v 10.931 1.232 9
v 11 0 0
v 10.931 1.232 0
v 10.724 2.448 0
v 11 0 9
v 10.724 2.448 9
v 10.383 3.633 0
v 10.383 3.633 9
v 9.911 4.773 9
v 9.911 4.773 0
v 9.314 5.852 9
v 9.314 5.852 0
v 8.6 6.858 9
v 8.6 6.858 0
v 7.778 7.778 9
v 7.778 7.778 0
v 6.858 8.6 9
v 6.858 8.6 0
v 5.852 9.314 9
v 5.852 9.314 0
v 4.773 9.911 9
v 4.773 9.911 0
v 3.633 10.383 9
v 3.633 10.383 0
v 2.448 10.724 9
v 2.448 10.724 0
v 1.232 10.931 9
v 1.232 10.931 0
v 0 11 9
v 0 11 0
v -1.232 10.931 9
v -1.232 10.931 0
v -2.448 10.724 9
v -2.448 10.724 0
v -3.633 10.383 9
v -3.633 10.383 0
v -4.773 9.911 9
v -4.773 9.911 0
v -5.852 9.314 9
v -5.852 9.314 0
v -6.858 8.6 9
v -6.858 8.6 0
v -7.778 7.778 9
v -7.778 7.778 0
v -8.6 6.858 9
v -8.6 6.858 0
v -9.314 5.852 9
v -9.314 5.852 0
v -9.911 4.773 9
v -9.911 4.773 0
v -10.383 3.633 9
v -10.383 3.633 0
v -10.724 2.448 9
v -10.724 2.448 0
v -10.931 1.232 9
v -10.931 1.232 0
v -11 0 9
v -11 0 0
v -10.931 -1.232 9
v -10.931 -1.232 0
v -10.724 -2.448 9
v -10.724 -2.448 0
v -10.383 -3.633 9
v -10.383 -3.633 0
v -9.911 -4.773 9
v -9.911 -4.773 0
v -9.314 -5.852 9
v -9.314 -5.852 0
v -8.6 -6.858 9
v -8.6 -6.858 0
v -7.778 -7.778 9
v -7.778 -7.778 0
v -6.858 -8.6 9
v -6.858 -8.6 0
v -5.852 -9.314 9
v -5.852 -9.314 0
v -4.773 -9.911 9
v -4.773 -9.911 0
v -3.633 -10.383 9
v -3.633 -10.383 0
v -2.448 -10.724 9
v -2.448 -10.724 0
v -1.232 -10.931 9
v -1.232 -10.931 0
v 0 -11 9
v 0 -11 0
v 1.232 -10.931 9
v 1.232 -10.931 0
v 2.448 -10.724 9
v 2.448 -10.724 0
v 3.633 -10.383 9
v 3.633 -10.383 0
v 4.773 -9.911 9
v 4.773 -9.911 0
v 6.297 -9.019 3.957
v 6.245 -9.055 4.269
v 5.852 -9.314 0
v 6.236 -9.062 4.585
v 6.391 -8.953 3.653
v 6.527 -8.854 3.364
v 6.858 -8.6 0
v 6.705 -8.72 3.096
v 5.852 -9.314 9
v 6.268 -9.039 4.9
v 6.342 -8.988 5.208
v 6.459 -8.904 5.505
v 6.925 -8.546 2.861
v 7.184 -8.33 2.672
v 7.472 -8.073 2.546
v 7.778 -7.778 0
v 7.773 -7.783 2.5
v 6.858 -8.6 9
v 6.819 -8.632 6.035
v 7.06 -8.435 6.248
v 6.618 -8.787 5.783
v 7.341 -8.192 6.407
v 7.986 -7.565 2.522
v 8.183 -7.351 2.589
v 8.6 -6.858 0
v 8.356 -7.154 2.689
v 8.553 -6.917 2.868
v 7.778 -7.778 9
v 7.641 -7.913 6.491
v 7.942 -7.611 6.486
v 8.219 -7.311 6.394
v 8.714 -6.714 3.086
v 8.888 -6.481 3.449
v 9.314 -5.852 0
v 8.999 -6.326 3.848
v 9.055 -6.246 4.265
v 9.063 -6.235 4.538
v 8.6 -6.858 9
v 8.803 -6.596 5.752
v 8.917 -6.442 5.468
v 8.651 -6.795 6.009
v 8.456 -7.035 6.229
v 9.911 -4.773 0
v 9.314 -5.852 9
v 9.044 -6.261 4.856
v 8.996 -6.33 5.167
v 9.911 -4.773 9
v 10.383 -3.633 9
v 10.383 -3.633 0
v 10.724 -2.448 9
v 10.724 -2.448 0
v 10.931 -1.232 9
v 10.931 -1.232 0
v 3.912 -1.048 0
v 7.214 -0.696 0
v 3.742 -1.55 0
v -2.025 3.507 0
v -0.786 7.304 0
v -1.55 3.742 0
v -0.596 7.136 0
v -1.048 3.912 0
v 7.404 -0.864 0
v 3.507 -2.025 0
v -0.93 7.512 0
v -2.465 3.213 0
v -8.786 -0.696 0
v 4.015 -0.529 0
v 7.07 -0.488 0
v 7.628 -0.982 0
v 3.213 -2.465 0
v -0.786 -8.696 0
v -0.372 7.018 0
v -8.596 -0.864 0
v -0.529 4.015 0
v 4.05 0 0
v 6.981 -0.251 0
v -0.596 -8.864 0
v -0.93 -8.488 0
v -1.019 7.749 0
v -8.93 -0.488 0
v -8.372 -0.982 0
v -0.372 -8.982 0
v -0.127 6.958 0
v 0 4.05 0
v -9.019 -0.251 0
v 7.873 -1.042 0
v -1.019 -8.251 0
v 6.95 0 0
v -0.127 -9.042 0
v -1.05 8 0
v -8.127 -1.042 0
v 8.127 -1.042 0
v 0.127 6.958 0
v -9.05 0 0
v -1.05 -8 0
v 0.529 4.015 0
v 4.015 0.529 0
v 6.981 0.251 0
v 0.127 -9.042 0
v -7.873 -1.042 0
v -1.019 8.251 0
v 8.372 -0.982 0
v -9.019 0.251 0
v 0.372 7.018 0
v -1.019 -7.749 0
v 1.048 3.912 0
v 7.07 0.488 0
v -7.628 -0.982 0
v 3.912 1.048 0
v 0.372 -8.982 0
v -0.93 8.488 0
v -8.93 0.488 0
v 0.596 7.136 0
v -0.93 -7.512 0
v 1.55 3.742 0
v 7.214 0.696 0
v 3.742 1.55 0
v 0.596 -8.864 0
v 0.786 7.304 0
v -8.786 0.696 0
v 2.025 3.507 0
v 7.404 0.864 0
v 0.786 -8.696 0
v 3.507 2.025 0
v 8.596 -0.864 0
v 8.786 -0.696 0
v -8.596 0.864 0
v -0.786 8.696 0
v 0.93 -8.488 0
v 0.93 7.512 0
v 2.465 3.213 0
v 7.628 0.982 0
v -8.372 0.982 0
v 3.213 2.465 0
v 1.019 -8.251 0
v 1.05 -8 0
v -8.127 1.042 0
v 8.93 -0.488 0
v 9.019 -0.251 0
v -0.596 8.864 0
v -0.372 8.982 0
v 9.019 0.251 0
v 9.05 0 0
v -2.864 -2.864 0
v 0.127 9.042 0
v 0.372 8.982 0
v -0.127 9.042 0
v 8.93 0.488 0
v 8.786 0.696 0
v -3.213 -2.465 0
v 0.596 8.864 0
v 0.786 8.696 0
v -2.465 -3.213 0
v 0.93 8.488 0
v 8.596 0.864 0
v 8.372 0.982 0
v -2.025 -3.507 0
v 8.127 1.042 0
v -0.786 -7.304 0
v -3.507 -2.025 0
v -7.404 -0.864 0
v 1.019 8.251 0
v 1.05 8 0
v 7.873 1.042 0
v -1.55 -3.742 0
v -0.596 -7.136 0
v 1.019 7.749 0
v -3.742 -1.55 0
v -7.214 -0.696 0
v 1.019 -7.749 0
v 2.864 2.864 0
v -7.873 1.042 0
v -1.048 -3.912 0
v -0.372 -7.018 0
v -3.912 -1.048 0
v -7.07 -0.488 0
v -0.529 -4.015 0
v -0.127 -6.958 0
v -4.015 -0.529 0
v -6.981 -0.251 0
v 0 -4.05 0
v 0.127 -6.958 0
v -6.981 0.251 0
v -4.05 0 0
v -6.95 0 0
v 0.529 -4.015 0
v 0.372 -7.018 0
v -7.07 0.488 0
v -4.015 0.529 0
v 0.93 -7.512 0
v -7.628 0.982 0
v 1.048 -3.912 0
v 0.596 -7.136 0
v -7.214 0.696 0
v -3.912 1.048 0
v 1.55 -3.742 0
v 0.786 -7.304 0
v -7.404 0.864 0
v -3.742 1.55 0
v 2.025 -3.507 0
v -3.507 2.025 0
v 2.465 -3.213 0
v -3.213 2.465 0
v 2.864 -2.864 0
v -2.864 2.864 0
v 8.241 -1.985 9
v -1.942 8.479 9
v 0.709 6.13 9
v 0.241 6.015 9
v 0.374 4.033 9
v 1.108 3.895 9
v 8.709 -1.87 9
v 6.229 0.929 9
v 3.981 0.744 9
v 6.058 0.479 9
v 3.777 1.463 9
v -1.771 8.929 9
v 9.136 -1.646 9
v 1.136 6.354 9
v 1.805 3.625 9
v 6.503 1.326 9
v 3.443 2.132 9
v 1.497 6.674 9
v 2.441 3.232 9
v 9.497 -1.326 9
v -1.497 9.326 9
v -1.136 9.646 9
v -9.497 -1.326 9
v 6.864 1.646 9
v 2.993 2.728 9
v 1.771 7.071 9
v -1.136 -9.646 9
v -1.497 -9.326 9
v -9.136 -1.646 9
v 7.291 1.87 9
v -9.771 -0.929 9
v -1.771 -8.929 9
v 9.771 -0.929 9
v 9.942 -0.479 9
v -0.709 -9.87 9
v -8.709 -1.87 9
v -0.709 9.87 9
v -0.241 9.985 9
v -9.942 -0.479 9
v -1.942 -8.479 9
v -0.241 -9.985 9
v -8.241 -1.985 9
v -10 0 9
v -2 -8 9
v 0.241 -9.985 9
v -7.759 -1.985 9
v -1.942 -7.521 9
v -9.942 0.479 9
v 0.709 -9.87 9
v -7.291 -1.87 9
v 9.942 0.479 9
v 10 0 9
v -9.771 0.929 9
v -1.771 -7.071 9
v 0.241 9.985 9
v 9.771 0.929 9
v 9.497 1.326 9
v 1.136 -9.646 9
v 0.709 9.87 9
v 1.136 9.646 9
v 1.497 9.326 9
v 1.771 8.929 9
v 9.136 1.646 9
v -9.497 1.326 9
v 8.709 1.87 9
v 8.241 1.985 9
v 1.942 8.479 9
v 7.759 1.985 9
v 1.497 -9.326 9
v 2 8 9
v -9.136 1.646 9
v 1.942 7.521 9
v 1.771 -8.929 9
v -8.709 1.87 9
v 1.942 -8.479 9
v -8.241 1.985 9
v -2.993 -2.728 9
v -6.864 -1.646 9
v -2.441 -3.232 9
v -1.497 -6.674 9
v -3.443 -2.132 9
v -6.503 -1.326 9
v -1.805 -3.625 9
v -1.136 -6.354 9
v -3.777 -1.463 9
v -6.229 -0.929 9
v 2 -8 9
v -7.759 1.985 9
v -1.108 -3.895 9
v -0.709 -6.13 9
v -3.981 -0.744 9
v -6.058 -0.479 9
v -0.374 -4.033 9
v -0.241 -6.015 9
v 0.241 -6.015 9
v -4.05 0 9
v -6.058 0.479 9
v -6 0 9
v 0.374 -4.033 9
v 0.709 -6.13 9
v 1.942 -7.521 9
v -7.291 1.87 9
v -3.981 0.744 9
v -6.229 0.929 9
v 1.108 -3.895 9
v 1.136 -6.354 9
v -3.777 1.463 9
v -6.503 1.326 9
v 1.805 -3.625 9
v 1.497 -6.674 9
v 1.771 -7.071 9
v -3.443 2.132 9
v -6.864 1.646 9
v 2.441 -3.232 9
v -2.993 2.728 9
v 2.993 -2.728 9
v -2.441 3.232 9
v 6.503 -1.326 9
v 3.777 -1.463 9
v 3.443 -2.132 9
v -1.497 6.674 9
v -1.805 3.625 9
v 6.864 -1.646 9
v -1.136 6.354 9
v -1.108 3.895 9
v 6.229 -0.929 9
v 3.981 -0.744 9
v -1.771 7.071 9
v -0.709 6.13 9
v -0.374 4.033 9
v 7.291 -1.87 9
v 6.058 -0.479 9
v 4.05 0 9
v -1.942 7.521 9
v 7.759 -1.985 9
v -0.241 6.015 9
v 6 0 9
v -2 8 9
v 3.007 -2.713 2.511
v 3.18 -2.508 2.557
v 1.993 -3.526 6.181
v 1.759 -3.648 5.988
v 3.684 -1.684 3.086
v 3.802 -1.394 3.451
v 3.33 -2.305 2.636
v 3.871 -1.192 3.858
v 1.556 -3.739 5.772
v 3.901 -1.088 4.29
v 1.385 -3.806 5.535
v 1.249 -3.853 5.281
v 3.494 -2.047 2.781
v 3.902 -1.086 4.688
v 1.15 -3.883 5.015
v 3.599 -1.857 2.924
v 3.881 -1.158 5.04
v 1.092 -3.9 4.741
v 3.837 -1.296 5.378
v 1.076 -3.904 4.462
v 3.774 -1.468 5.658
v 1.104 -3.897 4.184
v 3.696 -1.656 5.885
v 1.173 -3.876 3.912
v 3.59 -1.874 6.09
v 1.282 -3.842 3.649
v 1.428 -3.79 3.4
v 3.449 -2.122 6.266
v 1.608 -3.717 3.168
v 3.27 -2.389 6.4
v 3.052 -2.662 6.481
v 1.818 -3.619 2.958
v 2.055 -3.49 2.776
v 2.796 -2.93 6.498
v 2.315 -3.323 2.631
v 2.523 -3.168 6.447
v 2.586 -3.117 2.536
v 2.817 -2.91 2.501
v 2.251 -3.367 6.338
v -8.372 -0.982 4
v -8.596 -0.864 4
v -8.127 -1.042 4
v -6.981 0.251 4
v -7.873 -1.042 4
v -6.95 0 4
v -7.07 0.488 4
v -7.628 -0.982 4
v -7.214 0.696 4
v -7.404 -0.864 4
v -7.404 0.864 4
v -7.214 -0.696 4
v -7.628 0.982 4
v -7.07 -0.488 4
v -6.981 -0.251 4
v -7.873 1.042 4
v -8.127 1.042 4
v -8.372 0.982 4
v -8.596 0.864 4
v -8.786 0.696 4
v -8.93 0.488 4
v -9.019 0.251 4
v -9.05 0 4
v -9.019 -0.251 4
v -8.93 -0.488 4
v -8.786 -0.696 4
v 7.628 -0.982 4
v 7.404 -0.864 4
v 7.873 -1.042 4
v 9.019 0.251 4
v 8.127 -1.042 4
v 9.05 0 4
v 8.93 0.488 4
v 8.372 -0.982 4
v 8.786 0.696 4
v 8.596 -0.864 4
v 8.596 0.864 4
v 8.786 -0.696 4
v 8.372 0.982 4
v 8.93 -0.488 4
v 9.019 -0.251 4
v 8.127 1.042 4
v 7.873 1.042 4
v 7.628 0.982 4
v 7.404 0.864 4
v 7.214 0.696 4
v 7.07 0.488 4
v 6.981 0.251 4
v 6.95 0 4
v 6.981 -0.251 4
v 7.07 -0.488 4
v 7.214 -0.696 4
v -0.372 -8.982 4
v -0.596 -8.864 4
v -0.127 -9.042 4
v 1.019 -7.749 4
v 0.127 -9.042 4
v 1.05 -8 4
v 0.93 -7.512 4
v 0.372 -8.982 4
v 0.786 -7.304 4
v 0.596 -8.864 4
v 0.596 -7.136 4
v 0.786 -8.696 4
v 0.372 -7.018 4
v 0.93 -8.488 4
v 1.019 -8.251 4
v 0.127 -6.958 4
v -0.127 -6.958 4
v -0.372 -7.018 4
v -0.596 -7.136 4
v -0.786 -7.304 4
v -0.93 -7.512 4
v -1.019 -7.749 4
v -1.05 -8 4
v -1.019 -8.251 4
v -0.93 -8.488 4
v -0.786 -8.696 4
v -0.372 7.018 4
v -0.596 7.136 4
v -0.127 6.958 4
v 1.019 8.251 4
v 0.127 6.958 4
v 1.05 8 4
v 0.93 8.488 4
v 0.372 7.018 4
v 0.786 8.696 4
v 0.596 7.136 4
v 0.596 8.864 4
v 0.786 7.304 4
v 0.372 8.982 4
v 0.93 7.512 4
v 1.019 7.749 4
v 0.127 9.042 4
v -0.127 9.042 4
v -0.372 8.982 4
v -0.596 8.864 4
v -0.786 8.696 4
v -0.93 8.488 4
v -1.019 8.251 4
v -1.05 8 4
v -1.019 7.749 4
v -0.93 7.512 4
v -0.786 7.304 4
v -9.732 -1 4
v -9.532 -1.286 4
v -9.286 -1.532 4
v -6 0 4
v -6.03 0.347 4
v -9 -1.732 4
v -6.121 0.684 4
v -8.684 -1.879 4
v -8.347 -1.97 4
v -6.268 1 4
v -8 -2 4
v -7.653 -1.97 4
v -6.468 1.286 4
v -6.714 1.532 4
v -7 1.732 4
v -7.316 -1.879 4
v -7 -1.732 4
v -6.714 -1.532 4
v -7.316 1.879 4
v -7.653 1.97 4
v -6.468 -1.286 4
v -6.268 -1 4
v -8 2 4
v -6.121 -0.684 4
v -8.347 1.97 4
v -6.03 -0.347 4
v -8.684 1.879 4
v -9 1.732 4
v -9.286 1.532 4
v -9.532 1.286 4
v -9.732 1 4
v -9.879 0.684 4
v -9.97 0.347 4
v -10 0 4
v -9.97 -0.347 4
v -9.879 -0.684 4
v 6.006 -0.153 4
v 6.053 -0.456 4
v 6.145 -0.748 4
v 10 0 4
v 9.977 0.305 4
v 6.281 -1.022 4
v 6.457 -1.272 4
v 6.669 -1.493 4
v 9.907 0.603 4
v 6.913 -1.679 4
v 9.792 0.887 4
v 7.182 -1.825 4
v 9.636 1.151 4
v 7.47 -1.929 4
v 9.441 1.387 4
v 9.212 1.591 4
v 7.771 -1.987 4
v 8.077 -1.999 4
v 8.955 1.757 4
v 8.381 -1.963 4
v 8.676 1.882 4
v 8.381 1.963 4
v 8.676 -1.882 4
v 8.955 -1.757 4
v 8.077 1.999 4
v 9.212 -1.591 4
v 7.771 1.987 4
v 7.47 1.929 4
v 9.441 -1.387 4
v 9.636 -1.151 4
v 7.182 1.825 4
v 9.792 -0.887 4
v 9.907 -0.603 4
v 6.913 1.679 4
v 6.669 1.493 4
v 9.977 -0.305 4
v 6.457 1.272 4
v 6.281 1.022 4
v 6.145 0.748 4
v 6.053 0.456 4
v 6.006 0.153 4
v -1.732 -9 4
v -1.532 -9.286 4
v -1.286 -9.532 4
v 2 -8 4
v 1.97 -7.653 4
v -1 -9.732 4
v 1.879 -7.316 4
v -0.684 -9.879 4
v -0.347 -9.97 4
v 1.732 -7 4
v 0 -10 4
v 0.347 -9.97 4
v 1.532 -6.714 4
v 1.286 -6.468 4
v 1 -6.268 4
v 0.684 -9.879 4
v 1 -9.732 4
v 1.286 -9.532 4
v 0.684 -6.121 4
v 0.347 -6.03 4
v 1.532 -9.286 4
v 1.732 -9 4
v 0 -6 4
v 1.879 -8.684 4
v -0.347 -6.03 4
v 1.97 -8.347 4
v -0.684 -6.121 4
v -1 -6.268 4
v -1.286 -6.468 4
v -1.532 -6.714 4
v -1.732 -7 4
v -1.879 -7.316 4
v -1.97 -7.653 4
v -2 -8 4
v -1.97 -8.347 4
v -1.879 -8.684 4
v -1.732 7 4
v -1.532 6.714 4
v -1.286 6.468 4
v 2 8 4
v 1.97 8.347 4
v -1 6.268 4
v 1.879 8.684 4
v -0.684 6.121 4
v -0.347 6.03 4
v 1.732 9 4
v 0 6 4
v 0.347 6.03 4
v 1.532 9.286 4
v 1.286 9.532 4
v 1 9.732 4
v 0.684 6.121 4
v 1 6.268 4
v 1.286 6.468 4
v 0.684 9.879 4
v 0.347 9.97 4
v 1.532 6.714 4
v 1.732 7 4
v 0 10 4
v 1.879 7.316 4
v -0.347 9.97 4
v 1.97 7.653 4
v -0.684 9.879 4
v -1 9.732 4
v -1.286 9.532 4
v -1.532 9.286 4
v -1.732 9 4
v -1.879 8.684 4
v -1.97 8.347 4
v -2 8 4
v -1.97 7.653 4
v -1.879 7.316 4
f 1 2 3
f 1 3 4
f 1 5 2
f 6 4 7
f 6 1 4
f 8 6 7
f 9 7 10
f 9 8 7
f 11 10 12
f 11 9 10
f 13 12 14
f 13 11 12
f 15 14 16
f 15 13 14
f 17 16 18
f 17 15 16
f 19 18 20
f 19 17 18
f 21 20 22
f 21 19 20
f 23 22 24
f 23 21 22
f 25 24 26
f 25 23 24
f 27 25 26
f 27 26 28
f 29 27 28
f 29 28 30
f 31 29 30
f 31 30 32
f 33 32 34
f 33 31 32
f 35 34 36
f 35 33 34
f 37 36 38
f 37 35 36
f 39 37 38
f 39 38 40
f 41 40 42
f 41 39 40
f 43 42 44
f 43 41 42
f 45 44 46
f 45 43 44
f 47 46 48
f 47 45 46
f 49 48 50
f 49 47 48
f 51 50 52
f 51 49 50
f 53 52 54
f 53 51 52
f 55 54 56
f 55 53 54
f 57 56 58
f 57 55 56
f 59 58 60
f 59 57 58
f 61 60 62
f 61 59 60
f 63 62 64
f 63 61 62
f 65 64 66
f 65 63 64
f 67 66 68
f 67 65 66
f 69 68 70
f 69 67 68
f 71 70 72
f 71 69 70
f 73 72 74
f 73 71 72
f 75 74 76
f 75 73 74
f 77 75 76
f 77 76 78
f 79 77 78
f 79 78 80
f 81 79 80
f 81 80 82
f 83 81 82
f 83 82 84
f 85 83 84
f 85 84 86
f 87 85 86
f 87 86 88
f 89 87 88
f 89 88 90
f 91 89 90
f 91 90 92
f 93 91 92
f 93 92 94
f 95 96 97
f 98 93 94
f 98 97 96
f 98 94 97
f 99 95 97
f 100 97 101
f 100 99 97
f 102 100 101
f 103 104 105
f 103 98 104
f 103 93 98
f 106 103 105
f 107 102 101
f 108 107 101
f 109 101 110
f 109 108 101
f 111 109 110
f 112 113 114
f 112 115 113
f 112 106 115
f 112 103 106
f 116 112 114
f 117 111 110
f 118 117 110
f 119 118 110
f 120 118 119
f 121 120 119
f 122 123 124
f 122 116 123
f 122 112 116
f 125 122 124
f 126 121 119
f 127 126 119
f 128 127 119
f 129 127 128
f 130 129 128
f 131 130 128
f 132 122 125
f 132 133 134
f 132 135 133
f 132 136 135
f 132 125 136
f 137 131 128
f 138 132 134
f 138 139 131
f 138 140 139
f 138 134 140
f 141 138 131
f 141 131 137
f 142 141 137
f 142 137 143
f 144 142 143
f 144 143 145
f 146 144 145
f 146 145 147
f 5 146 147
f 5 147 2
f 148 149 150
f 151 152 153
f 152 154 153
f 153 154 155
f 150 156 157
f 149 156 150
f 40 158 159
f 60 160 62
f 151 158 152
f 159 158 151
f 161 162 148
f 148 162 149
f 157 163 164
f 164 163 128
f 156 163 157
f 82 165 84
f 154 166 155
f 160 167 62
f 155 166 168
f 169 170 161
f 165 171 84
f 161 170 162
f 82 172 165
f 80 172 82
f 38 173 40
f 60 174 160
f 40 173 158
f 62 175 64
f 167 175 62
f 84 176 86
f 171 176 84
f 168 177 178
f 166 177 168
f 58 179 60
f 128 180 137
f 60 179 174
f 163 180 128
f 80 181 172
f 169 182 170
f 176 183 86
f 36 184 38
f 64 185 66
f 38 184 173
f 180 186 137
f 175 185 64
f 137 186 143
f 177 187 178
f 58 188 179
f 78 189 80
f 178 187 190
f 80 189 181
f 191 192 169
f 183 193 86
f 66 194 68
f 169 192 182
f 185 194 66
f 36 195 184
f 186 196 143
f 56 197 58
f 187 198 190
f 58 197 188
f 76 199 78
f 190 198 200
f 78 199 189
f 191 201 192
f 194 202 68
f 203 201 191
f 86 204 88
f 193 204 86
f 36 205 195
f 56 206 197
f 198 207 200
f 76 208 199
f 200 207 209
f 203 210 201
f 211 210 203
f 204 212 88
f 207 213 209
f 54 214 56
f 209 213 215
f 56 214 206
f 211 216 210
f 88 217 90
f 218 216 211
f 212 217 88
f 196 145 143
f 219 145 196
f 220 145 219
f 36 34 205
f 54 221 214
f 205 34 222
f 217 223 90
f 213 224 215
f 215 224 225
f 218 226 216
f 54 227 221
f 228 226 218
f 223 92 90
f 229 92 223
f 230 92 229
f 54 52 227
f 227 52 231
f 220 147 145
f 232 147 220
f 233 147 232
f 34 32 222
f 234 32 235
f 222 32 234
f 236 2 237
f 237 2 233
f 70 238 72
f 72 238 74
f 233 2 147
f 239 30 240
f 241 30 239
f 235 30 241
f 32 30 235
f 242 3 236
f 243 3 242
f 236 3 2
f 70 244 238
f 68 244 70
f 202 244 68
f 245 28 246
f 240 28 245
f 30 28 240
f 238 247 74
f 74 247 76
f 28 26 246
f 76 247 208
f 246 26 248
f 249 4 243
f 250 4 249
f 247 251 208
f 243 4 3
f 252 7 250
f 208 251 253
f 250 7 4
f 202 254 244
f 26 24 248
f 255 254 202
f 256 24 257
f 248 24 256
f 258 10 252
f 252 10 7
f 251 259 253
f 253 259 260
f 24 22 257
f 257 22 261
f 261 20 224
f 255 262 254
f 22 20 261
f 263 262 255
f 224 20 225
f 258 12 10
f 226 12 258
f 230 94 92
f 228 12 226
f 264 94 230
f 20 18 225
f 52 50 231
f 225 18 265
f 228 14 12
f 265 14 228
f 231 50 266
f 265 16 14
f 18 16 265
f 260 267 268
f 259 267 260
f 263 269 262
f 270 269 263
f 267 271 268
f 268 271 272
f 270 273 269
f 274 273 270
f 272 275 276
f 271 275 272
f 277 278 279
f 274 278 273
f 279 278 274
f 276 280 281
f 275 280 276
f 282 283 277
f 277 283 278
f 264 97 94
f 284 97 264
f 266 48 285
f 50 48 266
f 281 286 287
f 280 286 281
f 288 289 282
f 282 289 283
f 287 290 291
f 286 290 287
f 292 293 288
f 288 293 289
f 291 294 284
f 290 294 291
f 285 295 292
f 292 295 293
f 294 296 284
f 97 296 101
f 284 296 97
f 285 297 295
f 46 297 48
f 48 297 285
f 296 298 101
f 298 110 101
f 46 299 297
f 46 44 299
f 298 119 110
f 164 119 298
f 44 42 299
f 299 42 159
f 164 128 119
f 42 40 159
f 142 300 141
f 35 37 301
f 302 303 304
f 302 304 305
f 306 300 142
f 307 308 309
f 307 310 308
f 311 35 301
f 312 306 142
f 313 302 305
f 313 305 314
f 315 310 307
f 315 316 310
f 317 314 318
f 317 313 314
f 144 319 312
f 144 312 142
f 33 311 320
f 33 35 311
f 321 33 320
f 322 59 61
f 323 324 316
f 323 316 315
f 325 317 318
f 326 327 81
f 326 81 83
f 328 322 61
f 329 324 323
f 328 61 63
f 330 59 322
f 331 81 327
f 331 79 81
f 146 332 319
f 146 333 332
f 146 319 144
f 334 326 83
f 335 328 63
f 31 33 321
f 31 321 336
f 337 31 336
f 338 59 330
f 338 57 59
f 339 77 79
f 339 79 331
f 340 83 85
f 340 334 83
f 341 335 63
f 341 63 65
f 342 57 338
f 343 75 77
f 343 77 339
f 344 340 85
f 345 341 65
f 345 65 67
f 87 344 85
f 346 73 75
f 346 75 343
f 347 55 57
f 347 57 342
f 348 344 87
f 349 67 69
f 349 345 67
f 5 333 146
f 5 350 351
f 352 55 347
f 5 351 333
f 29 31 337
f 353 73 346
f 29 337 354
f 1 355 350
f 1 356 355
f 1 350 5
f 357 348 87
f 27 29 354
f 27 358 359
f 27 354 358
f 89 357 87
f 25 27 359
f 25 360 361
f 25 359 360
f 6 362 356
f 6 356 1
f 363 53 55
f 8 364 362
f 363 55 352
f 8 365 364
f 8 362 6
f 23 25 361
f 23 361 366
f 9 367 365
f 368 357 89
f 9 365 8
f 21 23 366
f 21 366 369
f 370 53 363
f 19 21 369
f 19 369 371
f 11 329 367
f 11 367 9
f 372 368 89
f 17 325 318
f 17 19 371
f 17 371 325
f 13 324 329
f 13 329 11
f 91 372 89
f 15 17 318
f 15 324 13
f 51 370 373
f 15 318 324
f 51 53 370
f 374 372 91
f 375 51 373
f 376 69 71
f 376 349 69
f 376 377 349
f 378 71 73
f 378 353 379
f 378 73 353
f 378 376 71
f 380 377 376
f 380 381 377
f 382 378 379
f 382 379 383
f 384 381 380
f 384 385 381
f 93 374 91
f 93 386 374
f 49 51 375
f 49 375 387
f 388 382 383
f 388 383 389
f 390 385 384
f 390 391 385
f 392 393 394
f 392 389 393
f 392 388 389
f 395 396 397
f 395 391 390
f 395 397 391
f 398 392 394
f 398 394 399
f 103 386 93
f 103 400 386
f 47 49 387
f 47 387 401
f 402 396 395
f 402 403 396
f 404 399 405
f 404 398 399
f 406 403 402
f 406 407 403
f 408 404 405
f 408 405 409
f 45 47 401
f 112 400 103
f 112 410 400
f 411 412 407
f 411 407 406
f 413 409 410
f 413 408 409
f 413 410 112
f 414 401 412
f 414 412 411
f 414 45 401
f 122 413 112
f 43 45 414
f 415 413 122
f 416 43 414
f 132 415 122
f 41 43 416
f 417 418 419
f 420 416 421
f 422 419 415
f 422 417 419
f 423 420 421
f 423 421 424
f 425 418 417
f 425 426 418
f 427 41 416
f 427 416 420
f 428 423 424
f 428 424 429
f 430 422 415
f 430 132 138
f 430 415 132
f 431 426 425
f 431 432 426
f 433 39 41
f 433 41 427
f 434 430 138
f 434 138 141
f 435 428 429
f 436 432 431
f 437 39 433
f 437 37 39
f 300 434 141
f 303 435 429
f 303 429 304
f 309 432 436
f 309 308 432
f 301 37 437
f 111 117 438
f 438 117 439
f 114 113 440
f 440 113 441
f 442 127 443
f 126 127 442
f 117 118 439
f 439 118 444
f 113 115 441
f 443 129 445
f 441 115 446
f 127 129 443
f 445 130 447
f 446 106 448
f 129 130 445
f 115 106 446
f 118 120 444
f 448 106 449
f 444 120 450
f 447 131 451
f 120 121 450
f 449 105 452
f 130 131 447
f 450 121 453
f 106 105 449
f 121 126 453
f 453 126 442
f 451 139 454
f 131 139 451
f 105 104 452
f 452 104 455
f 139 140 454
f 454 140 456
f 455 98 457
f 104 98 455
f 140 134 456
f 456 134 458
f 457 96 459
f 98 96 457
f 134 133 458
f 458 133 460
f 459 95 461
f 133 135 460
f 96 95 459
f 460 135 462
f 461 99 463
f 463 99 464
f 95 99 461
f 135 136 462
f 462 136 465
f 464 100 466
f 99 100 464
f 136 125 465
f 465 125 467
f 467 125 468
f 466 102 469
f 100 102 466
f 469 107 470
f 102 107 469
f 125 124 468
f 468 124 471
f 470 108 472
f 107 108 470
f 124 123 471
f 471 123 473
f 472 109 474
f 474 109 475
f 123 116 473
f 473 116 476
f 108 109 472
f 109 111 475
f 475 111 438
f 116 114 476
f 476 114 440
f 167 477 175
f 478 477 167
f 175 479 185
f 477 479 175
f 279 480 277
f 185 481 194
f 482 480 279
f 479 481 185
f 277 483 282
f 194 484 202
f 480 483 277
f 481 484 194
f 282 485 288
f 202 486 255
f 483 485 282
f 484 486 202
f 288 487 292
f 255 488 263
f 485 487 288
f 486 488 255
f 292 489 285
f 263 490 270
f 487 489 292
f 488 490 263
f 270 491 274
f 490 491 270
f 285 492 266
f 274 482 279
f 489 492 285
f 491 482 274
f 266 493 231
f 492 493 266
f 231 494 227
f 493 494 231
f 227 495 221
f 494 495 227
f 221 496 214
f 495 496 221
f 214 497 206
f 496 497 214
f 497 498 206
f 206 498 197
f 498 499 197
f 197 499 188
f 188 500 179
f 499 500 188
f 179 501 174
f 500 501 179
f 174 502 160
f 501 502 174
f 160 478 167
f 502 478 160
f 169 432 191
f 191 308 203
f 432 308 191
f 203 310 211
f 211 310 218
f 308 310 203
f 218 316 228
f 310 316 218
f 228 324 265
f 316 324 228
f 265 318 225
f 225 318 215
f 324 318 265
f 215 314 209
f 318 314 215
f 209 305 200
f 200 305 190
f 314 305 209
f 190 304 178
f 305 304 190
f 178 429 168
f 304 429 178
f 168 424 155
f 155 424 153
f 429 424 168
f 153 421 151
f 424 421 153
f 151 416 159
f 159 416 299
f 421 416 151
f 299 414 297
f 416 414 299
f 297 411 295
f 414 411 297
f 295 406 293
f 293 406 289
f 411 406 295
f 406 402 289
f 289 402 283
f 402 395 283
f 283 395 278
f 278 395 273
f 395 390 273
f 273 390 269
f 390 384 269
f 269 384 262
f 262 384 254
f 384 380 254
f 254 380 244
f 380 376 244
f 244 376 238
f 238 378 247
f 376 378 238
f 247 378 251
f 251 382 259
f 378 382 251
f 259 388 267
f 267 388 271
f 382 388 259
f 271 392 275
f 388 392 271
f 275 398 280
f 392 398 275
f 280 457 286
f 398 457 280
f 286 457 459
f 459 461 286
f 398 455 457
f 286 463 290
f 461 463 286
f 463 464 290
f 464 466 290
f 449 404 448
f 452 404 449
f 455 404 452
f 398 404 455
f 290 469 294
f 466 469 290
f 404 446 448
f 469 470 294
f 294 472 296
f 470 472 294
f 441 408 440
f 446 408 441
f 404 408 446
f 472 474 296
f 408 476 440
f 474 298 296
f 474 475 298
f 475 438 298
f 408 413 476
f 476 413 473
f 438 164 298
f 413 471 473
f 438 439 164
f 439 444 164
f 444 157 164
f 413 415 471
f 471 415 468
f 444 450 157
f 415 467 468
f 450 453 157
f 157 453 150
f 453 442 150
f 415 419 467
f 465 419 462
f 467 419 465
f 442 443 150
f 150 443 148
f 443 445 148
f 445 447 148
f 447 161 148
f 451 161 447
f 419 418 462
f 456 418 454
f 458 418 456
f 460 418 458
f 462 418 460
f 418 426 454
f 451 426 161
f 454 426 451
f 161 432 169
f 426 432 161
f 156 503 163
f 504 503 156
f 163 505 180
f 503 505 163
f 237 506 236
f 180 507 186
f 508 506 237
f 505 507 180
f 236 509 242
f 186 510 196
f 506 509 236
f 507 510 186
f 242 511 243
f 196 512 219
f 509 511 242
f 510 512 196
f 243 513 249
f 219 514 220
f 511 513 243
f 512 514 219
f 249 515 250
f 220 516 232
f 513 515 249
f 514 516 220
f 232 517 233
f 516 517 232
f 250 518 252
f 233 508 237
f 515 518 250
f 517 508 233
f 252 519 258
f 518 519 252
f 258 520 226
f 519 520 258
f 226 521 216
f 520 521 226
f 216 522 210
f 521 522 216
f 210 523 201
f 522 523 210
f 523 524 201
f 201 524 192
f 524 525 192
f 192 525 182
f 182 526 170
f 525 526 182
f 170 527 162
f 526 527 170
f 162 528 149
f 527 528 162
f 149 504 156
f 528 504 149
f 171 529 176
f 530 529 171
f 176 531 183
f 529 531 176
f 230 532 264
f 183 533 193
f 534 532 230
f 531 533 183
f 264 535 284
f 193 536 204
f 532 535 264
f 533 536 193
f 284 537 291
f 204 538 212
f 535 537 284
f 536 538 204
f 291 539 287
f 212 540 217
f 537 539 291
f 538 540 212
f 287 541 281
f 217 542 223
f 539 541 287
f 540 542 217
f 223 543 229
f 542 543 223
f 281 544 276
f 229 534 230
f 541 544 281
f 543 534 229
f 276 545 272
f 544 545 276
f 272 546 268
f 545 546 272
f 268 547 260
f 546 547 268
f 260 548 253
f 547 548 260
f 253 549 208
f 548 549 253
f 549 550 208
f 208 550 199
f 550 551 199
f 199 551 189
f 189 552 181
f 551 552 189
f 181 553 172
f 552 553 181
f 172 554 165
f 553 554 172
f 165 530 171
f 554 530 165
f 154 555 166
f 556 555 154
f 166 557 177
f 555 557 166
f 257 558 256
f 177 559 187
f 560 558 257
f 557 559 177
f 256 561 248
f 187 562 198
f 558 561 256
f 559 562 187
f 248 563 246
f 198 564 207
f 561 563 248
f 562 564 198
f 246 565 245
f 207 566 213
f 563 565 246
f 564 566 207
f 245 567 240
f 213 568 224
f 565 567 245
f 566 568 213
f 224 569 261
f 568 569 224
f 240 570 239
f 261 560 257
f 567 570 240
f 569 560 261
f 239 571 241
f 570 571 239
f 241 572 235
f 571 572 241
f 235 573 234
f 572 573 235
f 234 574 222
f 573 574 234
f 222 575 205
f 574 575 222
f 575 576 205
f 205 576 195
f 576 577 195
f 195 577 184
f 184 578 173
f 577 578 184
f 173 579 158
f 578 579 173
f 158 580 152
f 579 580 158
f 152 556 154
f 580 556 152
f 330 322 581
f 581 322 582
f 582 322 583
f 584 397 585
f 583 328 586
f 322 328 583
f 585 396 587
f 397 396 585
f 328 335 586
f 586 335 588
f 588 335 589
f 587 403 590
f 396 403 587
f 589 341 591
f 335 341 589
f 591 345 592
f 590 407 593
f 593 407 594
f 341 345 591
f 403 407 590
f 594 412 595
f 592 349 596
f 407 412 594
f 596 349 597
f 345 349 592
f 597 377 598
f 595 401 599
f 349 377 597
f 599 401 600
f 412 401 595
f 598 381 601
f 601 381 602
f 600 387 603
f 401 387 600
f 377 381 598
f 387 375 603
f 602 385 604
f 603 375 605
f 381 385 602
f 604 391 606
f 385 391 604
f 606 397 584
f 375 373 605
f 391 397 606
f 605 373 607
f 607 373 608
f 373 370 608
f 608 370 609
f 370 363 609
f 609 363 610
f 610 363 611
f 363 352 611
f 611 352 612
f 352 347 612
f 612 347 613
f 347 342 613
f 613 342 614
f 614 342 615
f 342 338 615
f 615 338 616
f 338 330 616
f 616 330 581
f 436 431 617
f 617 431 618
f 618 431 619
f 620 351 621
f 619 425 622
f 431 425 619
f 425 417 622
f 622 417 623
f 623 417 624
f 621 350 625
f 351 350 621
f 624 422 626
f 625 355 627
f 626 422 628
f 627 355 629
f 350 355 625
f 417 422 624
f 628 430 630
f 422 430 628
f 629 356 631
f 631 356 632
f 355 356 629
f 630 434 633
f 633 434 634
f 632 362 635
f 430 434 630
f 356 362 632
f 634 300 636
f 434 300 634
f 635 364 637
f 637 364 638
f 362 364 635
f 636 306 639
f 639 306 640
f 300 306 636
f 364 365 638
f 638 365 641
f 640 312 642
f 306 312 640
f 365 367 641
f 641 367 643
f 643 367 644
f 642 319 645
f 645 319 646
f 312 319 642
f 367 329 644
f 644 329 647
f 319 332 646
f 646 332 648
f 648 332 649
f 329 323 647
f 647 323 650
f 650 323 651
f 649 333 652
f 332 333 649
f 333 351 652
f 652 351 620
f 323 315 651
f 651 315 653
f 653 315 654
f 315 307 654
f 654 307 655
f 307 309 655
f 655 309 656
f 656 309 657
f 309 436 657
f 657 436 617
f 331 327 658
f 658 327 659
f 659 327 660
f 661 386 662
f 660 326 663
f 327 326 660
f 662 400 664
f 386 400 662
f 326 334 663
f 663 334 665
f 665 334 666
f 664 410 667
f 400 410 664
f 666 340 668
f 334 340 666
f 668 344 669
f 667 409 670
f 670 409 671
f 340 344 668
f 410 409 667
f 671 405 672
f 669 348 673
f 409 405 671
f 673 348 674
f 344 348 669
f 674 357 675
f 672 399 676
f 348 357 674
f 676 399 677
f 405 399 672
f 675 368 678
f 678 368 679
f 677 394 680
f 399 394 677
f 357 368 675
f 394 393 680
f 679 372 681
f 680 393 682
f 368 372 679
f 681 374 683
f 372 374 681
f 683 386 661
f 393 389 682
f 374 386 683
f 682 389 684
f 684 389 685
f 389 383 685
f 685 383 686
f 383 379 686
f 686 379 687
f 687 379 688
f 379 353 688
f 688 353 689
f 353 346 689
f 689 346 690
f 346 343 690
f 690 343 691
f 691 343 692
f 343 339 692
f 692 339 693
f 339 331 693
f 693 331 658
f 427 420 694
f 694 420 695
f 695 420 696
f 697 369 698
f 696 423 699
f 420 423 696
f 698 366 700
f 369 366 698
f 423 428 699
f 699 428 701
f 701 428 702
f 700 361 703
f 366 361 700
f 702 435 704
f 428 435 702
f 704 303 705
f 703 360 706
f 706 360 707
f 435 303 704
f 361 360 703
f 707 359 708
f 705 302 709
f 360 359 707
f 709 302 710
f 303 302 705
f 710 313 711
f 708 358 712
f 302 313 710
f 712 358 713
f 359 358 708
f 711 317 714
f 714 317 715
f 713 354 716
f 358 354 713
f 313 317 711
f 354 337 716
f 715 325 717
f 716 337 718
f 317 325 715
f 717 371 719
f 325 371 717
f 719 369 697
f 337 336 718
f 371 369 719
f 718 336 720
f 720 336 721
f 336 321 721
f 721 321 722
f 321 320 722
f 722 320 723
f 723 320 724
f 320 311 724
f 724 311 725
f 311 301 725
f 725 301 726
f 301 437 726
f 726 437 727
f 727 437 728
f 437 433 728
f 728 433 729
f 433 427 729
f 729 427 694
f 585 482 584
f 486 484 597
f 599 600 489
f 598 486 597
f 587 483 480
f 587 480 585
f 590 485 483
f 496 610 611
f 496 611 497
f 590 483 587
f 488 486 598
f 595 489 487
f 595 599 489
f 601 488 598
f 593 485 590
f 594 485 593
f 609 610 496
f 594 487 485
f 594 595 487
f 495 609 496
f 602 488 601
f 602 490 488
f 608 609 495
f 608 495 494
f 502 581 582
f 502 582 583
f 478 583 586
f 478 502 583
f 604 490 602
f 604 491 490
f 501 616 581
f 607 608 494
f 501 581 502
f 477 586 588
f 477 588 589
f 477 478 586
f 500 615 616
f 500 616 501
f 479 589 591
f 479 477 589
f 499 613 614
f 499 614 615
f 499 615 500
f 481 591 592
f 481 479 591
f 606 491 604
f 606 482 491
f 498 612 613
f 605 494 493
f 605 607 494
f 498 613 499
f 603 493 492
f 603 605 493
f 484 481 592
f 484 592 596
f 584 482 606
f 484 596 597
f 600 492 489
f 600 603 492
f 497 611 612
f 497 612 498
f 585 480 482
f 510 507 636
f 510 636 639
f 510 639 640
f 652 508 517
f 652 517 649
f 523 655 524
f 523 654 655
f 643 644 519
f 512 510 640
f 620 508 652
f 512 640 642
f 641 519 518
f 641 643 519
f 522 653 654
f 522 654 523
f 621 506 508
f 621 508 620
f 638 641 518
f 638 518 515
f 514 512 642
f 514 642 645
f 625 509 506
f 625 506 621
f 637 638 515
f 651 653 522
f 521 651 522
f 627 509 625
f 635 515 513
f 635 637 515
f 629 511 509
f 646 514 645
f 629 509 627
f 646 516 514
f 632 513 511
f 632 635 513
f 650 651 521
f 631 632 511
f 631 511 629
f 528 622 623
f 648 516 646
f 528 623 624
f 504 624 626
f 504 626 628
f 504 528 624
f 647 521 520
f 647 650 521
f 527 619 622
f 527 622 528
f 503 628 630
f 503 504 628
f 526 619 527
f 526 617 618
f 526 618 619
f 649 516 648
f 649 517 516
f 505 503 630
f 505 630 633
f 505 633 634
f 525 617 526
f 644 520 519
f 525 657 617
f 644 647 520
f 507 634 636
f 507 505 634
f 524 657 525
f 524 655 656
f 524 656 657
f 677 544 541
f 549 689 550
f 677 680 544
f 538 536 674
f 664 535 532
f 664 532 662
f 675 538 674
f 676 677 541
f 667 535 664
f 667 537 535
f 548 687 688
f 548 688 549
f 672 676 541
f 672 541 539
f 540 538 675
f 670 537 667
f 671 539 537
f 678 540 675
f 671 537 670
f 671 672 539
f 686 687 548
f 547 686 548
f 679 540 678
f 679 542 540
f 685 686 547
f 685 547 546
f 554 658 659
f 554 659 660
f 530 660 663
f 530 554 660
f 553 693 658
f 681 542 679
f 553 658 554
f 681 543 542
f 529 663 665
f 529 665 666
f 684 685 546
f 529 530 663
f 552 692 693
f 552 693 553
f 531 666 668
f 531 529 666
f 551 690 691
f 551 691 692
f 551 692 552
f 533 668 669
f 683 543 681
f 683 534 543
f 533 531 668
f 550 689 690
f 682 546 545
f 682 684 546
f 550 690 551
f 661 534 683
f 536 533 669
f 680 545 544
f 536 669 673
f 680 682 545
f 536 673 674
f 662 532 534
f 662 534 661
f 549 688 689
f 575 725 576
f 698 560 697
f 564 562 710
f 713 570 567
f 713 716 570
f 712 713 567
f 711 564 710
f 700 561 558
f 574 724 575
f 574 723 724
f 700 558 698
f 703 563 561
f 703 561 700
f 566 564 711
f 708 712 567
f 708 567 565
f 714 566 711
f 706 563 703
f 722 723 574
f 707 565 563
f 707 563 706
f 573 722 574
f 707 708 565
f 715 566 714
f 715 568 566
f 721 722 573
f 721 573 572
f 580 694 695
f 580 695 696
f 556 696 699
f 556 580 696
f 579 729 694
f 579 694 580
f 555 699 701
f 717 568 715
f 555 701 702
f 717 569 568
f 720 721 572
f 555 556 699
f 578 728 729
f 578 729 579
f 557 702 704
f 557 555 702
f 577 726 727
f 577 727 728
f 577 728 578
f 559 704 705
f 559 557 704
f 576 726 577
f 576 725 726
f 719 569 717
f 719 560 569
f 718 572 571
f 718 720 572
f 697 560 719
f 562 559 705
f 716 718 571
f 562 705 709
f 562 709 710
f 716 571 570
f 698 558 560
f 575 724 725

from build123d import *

# Parameters (mm, degrees)
CYLINDER013_R               = 2
CYLINDER013_DEPTH           = 12
CYLINDER013_ROLL_ANGLE      = 90
CYLINDER013_PITCH_ANGLE     = 45
CYLINDER013_PLACEMENT_ANGLE = 45
CYLINDER005_R               = 4.05
CYLINDER005_DEPTH           = 10
CYLINDER011_R               = 2
CYLINDER011_DEPTH           = 10
CYLINDER012_R               = 1.05
CYLINDER012_DEPTH           = 10
CYLINDER009_R               = 2
CYLINDER009_DEPTH           = 10
CYLINDER010_R               = 1.05
CYLINDER010_DEPTH           = 10
CYLINDER007_R               = 2
CYLINDER007_DEPTH           = 10
CYLINDER008_R               = 1.05
CYLINDER008_DEPTH           = 10
CYLINDER006_R               = 2
CYLINDER006_DEPTH           = 10
CYLINDER001_R               = 1.05
CYLINDER001_DEPTH           = 10
CYLINDER_R                  = 11
CYLINDER_DEPTH              = 9


with BuildPart() as cylinder013:
    # Cylinder013 → Cylinder013 (new body)
    with BuildSketch(Plane.XY):
        Circle(CYLINDER013_R)
    extrude(amount=CYLINDER013_DEPTH)


with BuildPart() as cylinder013_1:
    # Cylinder013 roll: moved
    add(cylinder013.part.rotate(Axis((0, 0, 0), (1, 0, 0)), CYLINDER013_ROLL_ANGLE))


with BuildPart() as cylinder013_2:
    # Cylinder013 pitch: moved
    add(cylinder013_1.part.rotate(Axis((0, 0, 0), (0, 1, 0)), CYLINDER013_PITCH_ANGLE))


with BuildPart() as cylinder013_3:
    # Cylinder013 placement: moved
    add(cylinder013_2.part.moved(Location((0, 0, 4.5))).rotate(Axis((0, 0, 4.5), (0, 0, 1)), CYLINDER013_PLACEMENT_ANGLE))


with BuildPart() as cylinder005:
    # Cylinder005 → Cylinder005 (new body)
    with BuildSketch(Plane.XY):
        Circle(CYLINDER005_R)
    extrude(amount=CYLINDER005_DEPTH)


with BuildPart() as cylinder011:
    # Cylinder011 → Cylinder011 (new body)
    with BuildSketch(Plane(origin=(8, 0, 5), x_dir=(1, 0, 0), z_dir=(0, 0, 1))):
        Circle(CYLINDER011_R)
    extrude(amount=CYLINDER011_DEPTH)


with BuildPart() as fusion003:
    # Cylinder012 → Cylinder012 (new body)
    with BuildSketch(Plane(origin=(8, 0, 0), x_dir=(1, 0, 0), z_dir=(0, 0, 1))):
        Circle(CYLINDER012_R)
    extrude(amount=CYLINDER012_DEPTH)

    # Fusion003: union Cylinder011
    add(cylinder011.part)


with BuildPart() as fusion003_1:
    # Fusion003 placement: moved
    add(fusion003.part.moved(Location((-8, -8, -1))))


with BuildPart() as cylinder009:
    # Cylinder009 → Cylinder009 (new body)
    with BuildSketch(Plane(origin=(8, 0, 5), x_dir=(1, 0, 0), z_dir=(0, 0, 1))):
        Circle(CYLINDER009_R)
    extrude(amount=CYLINDER009_DEPTH)


with BuildPart() as fusion002:
    # Cylinder010 → Cylinder010 (new body)
    with BuildSketch(Plane(origin=(8, 0, 0), x_dir=(1, 0, 0), z_dir=(0, 0, 1))):
        Circle(CYLINDER010_R)
    extrude(amount=CYLINDER010_DEPTH)

    # Fusion002: union Cylinder009
    add(cylinder009.part)


with BuildPart() as fusion002_1:
    # Fusion002 placement: moved
    add(fusion002.part.moved(Location((-8, 8, -1))))


with BuildPart() as cylinder007:
    # Cylinder007 → Cylinder007 (new body)
    with BuildSketch(Plane(origin=(8, 0, 5), x_dir=(1, 0, 0), z_dir=(0, 0, 1))):
        Circle(CYLINDER007_R)
    extrude(amount=CYLINDER007_DEPTH)


with BuildPart() as fusion001:
    # Cylinder008 → Cylinder008 (new body)
    with BuildSketch(Plane(origin=(8, 0, 0), x_dir=(1, 0, 0), z_dir=(0, 0, 1))):
        Circle(CYLINDER008_R)
    extrude(amount=CYLINDER008_DEPTH)

    # Fusion001: union Cylinder007
    add(cylinder007.part)


with BuildPart() as fusion001_1:
    # Fusion001 placement: moved
    add(fusion001.part.moved(Location((-16, 0, -1))))


with BuildPart() as cylinder006:
    # Cylinder006 → Cylinder006 (new body)
    with BuildSketch(Plane(origin=(8, 0, 5), x_dir=(1, 0, 0), z_dir=(0, 0, 1))):
        Circle(CYLINDER006_R)
    extrude(amount=CYLINDER006_DEPTH)


with BuildPart() as fusion:
    # Cylinder001 → Cylinder001 (new body)
    with BuildSketch(Plane(origin=(8, 0, 0), x_dir=(1, 0, 0), z_dir=(0, 0, 1))):
        Circle(CYLINDER001_R)
    extrude(amount=CYLINDER001_DEPTH)

    # Fusion: union Cylinder006
    add(cylinder006.part)


with BuildPart() as fusion_1:
    # Fusion placement: moved
    add(fusion.part.moved(Location((0, 0, -1))))


with BuildPart() as cut005:
    # Cylinder → Cylinder (new body)
    with BuildSketch(Plane.XY):
        Circle(CYLINDER_R)
    extrude(amount=CYLINDER_DEPTH)

    # Cut: cut Fusion
    add(fusion_1.part, mode=Mode.SUBTRACT)

    # Cut001: cut Fusion001
    add(fusion001_1.part, mode=Mode.SUBTRACT)

    # Cut002: cut Fusion002
    add(fusion002_1.part, mode=Mode.SUBTRACT)

    # Cut003: cut Fusion003
    add(fusion003_1.part, mode=Mode.SUBTRACT)

    # Cut004: cut Cylinder005
    add(cylinder005.part, mode=Mode.SUBTRACT)

    # Cut005: cut Cylinder013
    add(cylinder013_3.part, mode=Mode.SUBTRACT)


solid = cut005.part
